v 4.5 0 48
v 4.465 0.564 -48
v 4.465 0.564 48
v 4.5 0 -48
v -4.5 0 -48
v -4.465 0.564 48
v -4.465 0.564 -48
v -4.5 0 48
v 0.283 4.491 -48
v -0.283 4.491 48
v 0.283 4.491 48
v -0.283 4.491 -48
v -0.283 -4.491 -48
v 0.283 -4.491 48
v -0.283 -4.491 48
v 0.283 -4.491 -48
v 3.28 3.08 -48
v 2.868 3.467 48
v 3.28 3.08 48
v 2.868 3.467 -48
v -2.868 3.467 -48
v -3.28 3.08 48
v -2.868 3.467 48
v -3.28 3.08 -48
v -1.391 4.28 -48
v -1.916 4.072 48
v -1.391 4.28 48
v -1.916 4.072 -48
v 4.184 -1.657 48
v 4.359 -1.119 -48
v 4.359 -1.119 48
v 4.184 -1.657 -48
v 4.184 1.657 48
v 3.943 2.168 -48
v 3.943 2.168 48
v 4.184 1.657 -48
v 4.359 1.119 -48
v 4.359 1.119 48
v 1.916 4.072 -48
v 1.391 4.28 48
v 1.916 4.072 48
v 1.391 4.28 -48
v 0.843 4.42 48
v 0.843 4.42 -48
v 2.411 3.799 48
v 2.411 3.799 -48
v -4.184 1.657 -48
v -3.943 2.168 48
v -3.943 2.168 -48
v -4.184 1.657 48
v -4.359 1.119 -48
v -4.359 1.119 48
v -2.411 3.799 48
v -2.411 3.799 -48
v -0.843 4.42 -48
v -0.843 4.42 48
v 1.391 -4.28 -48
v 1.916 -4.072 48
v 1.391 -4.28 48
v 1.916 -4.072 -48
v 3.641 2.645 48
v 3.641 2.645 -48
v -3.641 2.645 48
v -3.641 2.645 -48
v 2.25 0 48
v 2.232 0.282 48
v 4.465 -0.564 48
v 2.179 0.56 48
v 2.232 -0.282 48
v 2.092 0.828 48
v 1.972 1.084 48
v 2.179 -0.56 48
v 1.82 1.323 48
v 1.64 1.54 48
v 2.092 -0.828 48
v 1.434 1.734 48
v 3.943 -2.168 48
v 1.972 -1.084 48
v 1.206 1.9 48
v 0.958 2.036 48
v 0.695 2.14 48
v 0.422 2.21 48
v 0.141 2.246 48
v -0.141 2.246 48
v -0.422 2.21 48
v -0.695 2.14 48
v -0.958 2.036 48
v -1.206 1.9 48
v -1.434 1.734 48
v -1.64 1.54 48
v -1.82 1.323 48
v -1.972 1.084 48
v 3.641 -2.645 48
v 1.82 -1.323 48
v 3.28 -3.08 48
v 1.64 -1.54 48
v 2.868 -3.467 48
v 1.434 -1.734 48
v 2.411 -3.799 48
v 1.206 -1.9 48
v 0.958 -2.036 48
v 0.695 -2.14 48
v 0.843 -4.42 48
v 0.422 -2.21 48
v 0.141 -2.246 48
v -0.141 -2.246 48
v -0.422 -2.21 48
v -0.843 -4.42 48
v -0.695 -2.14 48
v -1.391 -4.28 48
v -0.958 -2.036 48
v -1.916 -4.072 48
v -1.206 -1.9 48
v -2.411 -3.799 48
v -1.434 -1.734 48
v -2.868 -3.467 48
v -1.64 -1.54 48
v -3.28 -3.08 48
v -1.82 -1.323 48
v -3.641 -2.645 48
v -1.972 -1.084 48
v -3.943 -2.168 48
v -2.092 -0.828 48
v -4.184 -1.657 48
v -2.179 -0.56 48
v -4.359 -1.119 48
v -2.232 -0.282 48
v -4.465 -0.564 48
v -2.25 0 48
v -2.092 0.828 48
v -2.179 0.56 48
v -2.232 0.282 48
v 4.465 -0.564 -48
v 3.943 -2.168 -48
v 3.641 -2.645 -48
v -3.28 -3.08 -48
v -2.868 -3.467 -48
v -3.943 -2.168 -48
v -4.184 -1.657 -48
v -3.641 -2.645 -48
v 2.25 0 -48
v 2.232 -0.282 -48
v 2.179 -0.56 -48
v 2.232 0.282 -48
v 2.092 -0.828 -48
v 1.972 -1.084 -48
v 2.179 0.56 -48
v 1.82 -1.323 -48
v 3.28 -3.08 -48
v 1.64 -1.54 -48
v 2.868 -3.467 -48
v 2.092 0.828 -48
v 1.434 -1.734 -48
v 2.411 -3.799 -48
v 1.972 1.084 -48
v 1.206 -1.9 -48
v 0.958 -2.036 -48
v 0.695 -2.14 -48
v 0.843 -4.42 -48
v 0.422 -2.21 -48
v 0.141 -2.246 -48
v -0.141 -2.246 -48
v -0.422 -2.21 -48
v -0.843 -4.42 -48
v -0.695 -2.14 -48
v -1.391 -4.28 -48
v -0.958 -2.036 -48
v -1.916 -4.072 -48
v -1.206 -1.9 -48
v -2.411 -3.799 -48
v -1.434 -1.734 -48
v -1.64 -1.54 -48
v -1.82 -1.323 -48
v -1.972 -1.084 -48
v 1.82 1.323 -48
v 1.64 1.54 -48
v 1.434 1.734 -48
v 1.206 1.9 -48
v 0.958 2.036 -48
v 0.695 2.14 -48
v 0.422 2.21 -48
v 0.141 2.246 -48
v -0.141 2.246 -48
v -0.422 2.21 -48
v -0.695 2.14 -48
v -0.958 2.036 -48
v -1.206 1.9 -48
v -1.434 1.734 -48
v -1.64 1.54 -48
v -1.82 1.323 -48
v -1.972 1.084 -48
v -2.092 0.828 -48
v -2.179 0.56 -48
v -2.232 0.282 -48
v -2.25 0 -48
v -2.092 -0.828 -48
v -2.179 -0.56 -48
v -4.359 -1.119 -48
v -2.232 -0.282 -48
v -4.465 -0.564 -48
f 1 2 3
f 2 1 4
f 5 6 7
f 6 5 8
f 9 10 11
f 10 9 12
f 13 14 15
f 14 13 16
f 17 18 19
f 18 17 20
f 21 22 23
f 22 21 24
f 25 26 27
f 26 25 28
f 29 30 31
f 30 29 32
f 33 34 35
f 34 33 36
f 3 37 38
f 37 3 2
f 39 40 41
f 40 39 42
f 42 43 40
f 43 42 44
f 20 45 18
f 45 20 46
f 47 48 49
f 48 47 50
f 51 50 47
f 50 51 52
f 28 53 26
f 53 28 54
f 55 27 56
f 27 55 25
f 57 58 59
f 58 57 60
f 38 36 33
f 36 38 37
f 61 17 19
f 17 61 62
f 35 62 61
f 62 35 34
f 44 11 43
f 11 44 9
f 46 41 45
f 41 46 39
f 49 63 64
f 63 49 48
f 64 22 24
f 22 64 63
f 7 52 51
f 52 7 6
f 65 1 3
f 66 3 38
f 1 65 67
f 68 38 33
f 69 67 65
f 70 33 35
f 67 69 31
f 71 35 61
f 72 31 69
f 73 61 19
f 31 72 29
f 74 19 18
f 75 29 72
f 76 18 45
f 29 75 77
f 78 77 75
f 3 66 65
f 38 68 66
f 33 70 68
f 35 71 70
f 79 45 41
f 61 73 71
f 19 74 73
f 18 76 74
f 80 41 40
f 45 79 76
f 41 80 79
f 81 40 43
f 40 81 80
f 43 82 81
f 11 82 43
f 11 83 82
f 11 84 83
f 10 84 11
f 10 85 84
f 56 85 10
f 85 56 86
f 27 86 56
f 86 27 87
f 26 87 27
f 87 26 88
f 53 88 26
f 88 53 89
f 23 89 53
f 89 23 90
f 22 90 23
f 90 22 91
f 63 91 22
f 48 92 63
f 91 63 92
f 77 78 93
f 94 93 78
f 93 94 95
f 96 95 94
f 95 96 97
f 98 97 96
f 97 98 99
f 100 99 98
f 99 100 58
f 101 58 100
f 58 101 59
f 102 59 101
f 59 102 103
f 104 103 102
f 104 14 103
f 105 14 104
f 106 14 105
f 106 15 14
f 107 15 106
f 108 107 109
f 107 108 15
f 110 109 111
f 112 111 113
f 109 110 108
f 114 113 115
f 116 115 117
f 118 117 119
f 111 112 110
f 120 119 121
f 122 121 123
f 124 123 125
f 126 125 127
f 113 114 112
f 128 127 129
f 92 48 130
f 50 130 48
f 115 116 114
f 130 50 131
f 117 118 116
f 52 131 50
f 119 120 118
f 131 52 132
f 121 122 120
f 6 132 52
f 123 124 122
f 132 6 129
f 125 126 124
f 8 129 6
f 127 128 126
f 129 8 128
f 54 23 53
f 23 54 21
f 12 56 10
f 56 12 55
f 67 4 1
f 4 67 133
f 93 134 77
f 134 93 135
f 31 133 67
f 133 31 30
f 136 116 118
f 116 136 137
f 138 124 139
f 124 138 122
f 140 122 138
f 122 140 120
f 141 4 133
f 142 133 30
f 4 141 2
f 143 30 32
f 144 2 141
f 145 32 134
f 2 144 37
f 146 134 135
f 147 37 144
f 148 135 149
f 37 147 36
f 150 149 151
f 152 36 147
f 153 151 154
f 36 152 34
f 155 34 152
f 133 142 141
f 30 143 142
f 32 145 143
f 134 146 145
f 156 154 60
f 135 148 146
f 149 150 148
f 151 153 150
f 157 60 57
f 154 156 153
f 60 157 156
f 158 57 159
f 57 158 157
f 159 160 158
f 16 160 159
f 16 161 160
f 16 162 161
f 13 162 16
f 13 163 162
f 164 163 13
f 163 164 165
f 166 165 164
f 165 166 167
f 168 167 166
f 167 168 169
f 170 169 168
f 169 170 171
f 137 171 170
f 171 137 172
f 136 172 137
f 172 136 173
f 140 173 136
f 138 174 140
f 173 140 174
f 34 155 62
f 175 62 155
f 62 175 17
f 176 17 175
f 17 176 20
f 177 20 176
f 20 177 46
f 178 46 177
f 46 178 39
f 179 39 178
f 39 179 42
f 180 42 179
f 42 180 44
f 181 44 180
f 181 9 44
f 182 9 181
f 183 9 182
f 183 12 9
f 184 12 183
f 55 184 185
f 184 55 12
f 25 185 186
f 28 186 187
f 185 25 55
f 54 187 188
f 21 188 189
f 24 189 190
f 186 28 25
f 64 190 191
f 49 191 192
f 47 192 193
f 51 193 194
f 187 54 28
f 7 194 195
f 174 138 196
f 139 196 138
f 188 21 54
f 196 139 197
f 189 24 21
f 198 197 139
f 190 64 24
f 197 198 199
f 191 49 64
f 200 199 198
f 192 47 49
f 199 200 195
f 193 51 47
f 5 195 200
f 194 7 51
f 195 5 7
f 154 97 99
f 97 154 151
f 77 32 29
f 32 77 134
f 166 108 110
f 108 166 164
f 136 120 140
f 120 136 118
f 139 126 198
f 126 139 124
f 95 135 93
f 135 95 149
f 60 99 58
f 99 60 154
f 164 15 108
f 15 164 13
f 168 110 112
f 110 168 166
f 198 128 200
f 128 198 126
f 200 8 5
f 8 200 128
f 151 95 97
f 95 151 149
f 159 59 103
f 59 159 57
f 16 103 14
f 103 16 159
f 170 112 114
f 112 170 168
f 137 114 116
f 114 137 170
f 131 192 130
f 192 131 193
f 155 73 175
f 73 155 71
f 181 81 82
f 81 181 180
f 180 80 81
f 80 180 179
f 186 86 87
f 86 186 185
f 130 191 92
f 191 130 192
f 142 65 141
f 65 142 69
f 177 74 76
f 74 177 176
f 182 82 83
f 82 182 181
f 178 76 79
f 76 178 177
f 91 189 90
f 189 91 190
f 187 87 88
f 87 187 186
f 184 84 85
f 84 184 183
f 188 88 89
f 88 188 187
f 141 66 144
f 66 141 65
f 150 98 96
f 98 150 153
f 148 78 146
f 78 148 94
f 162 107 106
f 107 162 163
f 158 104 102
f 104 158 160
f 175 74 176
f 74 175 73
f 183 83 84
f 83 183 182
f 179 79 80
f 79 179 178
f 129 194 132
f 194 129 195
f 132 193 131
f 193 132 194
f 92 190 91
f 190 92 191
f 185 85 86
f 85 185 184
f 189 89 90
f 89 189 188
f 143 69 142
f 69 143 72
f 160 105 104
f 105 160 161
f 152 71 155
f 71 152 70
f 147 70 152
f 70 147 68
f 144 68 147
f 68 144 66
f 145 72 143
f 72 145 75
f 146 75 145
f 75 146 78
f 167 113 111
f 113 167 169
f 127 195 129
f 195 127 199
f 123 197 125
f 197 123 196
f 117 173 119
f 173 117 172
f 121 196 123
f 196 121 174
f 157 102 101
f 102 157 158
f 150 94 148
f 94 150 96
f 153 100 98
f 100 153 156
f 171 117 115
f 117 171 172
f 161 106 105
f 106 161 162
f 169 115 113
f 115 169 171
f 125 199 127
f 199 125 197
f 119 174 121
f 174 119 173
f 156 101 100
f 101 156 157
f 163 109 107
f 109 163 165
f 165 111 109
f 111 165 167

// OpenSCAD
$fn = 50;


difference() {
	union() {
		translate(v = [0, 0, -48.0000000000]) {
			cylinder(h = 96, r = 4.5000000000);
		}
	}
	union() {
		translate(v = [0, 0, -100.0000000000]) {
			cylinder(h = 200, r = 2.2500000000);
		}
	}
}
